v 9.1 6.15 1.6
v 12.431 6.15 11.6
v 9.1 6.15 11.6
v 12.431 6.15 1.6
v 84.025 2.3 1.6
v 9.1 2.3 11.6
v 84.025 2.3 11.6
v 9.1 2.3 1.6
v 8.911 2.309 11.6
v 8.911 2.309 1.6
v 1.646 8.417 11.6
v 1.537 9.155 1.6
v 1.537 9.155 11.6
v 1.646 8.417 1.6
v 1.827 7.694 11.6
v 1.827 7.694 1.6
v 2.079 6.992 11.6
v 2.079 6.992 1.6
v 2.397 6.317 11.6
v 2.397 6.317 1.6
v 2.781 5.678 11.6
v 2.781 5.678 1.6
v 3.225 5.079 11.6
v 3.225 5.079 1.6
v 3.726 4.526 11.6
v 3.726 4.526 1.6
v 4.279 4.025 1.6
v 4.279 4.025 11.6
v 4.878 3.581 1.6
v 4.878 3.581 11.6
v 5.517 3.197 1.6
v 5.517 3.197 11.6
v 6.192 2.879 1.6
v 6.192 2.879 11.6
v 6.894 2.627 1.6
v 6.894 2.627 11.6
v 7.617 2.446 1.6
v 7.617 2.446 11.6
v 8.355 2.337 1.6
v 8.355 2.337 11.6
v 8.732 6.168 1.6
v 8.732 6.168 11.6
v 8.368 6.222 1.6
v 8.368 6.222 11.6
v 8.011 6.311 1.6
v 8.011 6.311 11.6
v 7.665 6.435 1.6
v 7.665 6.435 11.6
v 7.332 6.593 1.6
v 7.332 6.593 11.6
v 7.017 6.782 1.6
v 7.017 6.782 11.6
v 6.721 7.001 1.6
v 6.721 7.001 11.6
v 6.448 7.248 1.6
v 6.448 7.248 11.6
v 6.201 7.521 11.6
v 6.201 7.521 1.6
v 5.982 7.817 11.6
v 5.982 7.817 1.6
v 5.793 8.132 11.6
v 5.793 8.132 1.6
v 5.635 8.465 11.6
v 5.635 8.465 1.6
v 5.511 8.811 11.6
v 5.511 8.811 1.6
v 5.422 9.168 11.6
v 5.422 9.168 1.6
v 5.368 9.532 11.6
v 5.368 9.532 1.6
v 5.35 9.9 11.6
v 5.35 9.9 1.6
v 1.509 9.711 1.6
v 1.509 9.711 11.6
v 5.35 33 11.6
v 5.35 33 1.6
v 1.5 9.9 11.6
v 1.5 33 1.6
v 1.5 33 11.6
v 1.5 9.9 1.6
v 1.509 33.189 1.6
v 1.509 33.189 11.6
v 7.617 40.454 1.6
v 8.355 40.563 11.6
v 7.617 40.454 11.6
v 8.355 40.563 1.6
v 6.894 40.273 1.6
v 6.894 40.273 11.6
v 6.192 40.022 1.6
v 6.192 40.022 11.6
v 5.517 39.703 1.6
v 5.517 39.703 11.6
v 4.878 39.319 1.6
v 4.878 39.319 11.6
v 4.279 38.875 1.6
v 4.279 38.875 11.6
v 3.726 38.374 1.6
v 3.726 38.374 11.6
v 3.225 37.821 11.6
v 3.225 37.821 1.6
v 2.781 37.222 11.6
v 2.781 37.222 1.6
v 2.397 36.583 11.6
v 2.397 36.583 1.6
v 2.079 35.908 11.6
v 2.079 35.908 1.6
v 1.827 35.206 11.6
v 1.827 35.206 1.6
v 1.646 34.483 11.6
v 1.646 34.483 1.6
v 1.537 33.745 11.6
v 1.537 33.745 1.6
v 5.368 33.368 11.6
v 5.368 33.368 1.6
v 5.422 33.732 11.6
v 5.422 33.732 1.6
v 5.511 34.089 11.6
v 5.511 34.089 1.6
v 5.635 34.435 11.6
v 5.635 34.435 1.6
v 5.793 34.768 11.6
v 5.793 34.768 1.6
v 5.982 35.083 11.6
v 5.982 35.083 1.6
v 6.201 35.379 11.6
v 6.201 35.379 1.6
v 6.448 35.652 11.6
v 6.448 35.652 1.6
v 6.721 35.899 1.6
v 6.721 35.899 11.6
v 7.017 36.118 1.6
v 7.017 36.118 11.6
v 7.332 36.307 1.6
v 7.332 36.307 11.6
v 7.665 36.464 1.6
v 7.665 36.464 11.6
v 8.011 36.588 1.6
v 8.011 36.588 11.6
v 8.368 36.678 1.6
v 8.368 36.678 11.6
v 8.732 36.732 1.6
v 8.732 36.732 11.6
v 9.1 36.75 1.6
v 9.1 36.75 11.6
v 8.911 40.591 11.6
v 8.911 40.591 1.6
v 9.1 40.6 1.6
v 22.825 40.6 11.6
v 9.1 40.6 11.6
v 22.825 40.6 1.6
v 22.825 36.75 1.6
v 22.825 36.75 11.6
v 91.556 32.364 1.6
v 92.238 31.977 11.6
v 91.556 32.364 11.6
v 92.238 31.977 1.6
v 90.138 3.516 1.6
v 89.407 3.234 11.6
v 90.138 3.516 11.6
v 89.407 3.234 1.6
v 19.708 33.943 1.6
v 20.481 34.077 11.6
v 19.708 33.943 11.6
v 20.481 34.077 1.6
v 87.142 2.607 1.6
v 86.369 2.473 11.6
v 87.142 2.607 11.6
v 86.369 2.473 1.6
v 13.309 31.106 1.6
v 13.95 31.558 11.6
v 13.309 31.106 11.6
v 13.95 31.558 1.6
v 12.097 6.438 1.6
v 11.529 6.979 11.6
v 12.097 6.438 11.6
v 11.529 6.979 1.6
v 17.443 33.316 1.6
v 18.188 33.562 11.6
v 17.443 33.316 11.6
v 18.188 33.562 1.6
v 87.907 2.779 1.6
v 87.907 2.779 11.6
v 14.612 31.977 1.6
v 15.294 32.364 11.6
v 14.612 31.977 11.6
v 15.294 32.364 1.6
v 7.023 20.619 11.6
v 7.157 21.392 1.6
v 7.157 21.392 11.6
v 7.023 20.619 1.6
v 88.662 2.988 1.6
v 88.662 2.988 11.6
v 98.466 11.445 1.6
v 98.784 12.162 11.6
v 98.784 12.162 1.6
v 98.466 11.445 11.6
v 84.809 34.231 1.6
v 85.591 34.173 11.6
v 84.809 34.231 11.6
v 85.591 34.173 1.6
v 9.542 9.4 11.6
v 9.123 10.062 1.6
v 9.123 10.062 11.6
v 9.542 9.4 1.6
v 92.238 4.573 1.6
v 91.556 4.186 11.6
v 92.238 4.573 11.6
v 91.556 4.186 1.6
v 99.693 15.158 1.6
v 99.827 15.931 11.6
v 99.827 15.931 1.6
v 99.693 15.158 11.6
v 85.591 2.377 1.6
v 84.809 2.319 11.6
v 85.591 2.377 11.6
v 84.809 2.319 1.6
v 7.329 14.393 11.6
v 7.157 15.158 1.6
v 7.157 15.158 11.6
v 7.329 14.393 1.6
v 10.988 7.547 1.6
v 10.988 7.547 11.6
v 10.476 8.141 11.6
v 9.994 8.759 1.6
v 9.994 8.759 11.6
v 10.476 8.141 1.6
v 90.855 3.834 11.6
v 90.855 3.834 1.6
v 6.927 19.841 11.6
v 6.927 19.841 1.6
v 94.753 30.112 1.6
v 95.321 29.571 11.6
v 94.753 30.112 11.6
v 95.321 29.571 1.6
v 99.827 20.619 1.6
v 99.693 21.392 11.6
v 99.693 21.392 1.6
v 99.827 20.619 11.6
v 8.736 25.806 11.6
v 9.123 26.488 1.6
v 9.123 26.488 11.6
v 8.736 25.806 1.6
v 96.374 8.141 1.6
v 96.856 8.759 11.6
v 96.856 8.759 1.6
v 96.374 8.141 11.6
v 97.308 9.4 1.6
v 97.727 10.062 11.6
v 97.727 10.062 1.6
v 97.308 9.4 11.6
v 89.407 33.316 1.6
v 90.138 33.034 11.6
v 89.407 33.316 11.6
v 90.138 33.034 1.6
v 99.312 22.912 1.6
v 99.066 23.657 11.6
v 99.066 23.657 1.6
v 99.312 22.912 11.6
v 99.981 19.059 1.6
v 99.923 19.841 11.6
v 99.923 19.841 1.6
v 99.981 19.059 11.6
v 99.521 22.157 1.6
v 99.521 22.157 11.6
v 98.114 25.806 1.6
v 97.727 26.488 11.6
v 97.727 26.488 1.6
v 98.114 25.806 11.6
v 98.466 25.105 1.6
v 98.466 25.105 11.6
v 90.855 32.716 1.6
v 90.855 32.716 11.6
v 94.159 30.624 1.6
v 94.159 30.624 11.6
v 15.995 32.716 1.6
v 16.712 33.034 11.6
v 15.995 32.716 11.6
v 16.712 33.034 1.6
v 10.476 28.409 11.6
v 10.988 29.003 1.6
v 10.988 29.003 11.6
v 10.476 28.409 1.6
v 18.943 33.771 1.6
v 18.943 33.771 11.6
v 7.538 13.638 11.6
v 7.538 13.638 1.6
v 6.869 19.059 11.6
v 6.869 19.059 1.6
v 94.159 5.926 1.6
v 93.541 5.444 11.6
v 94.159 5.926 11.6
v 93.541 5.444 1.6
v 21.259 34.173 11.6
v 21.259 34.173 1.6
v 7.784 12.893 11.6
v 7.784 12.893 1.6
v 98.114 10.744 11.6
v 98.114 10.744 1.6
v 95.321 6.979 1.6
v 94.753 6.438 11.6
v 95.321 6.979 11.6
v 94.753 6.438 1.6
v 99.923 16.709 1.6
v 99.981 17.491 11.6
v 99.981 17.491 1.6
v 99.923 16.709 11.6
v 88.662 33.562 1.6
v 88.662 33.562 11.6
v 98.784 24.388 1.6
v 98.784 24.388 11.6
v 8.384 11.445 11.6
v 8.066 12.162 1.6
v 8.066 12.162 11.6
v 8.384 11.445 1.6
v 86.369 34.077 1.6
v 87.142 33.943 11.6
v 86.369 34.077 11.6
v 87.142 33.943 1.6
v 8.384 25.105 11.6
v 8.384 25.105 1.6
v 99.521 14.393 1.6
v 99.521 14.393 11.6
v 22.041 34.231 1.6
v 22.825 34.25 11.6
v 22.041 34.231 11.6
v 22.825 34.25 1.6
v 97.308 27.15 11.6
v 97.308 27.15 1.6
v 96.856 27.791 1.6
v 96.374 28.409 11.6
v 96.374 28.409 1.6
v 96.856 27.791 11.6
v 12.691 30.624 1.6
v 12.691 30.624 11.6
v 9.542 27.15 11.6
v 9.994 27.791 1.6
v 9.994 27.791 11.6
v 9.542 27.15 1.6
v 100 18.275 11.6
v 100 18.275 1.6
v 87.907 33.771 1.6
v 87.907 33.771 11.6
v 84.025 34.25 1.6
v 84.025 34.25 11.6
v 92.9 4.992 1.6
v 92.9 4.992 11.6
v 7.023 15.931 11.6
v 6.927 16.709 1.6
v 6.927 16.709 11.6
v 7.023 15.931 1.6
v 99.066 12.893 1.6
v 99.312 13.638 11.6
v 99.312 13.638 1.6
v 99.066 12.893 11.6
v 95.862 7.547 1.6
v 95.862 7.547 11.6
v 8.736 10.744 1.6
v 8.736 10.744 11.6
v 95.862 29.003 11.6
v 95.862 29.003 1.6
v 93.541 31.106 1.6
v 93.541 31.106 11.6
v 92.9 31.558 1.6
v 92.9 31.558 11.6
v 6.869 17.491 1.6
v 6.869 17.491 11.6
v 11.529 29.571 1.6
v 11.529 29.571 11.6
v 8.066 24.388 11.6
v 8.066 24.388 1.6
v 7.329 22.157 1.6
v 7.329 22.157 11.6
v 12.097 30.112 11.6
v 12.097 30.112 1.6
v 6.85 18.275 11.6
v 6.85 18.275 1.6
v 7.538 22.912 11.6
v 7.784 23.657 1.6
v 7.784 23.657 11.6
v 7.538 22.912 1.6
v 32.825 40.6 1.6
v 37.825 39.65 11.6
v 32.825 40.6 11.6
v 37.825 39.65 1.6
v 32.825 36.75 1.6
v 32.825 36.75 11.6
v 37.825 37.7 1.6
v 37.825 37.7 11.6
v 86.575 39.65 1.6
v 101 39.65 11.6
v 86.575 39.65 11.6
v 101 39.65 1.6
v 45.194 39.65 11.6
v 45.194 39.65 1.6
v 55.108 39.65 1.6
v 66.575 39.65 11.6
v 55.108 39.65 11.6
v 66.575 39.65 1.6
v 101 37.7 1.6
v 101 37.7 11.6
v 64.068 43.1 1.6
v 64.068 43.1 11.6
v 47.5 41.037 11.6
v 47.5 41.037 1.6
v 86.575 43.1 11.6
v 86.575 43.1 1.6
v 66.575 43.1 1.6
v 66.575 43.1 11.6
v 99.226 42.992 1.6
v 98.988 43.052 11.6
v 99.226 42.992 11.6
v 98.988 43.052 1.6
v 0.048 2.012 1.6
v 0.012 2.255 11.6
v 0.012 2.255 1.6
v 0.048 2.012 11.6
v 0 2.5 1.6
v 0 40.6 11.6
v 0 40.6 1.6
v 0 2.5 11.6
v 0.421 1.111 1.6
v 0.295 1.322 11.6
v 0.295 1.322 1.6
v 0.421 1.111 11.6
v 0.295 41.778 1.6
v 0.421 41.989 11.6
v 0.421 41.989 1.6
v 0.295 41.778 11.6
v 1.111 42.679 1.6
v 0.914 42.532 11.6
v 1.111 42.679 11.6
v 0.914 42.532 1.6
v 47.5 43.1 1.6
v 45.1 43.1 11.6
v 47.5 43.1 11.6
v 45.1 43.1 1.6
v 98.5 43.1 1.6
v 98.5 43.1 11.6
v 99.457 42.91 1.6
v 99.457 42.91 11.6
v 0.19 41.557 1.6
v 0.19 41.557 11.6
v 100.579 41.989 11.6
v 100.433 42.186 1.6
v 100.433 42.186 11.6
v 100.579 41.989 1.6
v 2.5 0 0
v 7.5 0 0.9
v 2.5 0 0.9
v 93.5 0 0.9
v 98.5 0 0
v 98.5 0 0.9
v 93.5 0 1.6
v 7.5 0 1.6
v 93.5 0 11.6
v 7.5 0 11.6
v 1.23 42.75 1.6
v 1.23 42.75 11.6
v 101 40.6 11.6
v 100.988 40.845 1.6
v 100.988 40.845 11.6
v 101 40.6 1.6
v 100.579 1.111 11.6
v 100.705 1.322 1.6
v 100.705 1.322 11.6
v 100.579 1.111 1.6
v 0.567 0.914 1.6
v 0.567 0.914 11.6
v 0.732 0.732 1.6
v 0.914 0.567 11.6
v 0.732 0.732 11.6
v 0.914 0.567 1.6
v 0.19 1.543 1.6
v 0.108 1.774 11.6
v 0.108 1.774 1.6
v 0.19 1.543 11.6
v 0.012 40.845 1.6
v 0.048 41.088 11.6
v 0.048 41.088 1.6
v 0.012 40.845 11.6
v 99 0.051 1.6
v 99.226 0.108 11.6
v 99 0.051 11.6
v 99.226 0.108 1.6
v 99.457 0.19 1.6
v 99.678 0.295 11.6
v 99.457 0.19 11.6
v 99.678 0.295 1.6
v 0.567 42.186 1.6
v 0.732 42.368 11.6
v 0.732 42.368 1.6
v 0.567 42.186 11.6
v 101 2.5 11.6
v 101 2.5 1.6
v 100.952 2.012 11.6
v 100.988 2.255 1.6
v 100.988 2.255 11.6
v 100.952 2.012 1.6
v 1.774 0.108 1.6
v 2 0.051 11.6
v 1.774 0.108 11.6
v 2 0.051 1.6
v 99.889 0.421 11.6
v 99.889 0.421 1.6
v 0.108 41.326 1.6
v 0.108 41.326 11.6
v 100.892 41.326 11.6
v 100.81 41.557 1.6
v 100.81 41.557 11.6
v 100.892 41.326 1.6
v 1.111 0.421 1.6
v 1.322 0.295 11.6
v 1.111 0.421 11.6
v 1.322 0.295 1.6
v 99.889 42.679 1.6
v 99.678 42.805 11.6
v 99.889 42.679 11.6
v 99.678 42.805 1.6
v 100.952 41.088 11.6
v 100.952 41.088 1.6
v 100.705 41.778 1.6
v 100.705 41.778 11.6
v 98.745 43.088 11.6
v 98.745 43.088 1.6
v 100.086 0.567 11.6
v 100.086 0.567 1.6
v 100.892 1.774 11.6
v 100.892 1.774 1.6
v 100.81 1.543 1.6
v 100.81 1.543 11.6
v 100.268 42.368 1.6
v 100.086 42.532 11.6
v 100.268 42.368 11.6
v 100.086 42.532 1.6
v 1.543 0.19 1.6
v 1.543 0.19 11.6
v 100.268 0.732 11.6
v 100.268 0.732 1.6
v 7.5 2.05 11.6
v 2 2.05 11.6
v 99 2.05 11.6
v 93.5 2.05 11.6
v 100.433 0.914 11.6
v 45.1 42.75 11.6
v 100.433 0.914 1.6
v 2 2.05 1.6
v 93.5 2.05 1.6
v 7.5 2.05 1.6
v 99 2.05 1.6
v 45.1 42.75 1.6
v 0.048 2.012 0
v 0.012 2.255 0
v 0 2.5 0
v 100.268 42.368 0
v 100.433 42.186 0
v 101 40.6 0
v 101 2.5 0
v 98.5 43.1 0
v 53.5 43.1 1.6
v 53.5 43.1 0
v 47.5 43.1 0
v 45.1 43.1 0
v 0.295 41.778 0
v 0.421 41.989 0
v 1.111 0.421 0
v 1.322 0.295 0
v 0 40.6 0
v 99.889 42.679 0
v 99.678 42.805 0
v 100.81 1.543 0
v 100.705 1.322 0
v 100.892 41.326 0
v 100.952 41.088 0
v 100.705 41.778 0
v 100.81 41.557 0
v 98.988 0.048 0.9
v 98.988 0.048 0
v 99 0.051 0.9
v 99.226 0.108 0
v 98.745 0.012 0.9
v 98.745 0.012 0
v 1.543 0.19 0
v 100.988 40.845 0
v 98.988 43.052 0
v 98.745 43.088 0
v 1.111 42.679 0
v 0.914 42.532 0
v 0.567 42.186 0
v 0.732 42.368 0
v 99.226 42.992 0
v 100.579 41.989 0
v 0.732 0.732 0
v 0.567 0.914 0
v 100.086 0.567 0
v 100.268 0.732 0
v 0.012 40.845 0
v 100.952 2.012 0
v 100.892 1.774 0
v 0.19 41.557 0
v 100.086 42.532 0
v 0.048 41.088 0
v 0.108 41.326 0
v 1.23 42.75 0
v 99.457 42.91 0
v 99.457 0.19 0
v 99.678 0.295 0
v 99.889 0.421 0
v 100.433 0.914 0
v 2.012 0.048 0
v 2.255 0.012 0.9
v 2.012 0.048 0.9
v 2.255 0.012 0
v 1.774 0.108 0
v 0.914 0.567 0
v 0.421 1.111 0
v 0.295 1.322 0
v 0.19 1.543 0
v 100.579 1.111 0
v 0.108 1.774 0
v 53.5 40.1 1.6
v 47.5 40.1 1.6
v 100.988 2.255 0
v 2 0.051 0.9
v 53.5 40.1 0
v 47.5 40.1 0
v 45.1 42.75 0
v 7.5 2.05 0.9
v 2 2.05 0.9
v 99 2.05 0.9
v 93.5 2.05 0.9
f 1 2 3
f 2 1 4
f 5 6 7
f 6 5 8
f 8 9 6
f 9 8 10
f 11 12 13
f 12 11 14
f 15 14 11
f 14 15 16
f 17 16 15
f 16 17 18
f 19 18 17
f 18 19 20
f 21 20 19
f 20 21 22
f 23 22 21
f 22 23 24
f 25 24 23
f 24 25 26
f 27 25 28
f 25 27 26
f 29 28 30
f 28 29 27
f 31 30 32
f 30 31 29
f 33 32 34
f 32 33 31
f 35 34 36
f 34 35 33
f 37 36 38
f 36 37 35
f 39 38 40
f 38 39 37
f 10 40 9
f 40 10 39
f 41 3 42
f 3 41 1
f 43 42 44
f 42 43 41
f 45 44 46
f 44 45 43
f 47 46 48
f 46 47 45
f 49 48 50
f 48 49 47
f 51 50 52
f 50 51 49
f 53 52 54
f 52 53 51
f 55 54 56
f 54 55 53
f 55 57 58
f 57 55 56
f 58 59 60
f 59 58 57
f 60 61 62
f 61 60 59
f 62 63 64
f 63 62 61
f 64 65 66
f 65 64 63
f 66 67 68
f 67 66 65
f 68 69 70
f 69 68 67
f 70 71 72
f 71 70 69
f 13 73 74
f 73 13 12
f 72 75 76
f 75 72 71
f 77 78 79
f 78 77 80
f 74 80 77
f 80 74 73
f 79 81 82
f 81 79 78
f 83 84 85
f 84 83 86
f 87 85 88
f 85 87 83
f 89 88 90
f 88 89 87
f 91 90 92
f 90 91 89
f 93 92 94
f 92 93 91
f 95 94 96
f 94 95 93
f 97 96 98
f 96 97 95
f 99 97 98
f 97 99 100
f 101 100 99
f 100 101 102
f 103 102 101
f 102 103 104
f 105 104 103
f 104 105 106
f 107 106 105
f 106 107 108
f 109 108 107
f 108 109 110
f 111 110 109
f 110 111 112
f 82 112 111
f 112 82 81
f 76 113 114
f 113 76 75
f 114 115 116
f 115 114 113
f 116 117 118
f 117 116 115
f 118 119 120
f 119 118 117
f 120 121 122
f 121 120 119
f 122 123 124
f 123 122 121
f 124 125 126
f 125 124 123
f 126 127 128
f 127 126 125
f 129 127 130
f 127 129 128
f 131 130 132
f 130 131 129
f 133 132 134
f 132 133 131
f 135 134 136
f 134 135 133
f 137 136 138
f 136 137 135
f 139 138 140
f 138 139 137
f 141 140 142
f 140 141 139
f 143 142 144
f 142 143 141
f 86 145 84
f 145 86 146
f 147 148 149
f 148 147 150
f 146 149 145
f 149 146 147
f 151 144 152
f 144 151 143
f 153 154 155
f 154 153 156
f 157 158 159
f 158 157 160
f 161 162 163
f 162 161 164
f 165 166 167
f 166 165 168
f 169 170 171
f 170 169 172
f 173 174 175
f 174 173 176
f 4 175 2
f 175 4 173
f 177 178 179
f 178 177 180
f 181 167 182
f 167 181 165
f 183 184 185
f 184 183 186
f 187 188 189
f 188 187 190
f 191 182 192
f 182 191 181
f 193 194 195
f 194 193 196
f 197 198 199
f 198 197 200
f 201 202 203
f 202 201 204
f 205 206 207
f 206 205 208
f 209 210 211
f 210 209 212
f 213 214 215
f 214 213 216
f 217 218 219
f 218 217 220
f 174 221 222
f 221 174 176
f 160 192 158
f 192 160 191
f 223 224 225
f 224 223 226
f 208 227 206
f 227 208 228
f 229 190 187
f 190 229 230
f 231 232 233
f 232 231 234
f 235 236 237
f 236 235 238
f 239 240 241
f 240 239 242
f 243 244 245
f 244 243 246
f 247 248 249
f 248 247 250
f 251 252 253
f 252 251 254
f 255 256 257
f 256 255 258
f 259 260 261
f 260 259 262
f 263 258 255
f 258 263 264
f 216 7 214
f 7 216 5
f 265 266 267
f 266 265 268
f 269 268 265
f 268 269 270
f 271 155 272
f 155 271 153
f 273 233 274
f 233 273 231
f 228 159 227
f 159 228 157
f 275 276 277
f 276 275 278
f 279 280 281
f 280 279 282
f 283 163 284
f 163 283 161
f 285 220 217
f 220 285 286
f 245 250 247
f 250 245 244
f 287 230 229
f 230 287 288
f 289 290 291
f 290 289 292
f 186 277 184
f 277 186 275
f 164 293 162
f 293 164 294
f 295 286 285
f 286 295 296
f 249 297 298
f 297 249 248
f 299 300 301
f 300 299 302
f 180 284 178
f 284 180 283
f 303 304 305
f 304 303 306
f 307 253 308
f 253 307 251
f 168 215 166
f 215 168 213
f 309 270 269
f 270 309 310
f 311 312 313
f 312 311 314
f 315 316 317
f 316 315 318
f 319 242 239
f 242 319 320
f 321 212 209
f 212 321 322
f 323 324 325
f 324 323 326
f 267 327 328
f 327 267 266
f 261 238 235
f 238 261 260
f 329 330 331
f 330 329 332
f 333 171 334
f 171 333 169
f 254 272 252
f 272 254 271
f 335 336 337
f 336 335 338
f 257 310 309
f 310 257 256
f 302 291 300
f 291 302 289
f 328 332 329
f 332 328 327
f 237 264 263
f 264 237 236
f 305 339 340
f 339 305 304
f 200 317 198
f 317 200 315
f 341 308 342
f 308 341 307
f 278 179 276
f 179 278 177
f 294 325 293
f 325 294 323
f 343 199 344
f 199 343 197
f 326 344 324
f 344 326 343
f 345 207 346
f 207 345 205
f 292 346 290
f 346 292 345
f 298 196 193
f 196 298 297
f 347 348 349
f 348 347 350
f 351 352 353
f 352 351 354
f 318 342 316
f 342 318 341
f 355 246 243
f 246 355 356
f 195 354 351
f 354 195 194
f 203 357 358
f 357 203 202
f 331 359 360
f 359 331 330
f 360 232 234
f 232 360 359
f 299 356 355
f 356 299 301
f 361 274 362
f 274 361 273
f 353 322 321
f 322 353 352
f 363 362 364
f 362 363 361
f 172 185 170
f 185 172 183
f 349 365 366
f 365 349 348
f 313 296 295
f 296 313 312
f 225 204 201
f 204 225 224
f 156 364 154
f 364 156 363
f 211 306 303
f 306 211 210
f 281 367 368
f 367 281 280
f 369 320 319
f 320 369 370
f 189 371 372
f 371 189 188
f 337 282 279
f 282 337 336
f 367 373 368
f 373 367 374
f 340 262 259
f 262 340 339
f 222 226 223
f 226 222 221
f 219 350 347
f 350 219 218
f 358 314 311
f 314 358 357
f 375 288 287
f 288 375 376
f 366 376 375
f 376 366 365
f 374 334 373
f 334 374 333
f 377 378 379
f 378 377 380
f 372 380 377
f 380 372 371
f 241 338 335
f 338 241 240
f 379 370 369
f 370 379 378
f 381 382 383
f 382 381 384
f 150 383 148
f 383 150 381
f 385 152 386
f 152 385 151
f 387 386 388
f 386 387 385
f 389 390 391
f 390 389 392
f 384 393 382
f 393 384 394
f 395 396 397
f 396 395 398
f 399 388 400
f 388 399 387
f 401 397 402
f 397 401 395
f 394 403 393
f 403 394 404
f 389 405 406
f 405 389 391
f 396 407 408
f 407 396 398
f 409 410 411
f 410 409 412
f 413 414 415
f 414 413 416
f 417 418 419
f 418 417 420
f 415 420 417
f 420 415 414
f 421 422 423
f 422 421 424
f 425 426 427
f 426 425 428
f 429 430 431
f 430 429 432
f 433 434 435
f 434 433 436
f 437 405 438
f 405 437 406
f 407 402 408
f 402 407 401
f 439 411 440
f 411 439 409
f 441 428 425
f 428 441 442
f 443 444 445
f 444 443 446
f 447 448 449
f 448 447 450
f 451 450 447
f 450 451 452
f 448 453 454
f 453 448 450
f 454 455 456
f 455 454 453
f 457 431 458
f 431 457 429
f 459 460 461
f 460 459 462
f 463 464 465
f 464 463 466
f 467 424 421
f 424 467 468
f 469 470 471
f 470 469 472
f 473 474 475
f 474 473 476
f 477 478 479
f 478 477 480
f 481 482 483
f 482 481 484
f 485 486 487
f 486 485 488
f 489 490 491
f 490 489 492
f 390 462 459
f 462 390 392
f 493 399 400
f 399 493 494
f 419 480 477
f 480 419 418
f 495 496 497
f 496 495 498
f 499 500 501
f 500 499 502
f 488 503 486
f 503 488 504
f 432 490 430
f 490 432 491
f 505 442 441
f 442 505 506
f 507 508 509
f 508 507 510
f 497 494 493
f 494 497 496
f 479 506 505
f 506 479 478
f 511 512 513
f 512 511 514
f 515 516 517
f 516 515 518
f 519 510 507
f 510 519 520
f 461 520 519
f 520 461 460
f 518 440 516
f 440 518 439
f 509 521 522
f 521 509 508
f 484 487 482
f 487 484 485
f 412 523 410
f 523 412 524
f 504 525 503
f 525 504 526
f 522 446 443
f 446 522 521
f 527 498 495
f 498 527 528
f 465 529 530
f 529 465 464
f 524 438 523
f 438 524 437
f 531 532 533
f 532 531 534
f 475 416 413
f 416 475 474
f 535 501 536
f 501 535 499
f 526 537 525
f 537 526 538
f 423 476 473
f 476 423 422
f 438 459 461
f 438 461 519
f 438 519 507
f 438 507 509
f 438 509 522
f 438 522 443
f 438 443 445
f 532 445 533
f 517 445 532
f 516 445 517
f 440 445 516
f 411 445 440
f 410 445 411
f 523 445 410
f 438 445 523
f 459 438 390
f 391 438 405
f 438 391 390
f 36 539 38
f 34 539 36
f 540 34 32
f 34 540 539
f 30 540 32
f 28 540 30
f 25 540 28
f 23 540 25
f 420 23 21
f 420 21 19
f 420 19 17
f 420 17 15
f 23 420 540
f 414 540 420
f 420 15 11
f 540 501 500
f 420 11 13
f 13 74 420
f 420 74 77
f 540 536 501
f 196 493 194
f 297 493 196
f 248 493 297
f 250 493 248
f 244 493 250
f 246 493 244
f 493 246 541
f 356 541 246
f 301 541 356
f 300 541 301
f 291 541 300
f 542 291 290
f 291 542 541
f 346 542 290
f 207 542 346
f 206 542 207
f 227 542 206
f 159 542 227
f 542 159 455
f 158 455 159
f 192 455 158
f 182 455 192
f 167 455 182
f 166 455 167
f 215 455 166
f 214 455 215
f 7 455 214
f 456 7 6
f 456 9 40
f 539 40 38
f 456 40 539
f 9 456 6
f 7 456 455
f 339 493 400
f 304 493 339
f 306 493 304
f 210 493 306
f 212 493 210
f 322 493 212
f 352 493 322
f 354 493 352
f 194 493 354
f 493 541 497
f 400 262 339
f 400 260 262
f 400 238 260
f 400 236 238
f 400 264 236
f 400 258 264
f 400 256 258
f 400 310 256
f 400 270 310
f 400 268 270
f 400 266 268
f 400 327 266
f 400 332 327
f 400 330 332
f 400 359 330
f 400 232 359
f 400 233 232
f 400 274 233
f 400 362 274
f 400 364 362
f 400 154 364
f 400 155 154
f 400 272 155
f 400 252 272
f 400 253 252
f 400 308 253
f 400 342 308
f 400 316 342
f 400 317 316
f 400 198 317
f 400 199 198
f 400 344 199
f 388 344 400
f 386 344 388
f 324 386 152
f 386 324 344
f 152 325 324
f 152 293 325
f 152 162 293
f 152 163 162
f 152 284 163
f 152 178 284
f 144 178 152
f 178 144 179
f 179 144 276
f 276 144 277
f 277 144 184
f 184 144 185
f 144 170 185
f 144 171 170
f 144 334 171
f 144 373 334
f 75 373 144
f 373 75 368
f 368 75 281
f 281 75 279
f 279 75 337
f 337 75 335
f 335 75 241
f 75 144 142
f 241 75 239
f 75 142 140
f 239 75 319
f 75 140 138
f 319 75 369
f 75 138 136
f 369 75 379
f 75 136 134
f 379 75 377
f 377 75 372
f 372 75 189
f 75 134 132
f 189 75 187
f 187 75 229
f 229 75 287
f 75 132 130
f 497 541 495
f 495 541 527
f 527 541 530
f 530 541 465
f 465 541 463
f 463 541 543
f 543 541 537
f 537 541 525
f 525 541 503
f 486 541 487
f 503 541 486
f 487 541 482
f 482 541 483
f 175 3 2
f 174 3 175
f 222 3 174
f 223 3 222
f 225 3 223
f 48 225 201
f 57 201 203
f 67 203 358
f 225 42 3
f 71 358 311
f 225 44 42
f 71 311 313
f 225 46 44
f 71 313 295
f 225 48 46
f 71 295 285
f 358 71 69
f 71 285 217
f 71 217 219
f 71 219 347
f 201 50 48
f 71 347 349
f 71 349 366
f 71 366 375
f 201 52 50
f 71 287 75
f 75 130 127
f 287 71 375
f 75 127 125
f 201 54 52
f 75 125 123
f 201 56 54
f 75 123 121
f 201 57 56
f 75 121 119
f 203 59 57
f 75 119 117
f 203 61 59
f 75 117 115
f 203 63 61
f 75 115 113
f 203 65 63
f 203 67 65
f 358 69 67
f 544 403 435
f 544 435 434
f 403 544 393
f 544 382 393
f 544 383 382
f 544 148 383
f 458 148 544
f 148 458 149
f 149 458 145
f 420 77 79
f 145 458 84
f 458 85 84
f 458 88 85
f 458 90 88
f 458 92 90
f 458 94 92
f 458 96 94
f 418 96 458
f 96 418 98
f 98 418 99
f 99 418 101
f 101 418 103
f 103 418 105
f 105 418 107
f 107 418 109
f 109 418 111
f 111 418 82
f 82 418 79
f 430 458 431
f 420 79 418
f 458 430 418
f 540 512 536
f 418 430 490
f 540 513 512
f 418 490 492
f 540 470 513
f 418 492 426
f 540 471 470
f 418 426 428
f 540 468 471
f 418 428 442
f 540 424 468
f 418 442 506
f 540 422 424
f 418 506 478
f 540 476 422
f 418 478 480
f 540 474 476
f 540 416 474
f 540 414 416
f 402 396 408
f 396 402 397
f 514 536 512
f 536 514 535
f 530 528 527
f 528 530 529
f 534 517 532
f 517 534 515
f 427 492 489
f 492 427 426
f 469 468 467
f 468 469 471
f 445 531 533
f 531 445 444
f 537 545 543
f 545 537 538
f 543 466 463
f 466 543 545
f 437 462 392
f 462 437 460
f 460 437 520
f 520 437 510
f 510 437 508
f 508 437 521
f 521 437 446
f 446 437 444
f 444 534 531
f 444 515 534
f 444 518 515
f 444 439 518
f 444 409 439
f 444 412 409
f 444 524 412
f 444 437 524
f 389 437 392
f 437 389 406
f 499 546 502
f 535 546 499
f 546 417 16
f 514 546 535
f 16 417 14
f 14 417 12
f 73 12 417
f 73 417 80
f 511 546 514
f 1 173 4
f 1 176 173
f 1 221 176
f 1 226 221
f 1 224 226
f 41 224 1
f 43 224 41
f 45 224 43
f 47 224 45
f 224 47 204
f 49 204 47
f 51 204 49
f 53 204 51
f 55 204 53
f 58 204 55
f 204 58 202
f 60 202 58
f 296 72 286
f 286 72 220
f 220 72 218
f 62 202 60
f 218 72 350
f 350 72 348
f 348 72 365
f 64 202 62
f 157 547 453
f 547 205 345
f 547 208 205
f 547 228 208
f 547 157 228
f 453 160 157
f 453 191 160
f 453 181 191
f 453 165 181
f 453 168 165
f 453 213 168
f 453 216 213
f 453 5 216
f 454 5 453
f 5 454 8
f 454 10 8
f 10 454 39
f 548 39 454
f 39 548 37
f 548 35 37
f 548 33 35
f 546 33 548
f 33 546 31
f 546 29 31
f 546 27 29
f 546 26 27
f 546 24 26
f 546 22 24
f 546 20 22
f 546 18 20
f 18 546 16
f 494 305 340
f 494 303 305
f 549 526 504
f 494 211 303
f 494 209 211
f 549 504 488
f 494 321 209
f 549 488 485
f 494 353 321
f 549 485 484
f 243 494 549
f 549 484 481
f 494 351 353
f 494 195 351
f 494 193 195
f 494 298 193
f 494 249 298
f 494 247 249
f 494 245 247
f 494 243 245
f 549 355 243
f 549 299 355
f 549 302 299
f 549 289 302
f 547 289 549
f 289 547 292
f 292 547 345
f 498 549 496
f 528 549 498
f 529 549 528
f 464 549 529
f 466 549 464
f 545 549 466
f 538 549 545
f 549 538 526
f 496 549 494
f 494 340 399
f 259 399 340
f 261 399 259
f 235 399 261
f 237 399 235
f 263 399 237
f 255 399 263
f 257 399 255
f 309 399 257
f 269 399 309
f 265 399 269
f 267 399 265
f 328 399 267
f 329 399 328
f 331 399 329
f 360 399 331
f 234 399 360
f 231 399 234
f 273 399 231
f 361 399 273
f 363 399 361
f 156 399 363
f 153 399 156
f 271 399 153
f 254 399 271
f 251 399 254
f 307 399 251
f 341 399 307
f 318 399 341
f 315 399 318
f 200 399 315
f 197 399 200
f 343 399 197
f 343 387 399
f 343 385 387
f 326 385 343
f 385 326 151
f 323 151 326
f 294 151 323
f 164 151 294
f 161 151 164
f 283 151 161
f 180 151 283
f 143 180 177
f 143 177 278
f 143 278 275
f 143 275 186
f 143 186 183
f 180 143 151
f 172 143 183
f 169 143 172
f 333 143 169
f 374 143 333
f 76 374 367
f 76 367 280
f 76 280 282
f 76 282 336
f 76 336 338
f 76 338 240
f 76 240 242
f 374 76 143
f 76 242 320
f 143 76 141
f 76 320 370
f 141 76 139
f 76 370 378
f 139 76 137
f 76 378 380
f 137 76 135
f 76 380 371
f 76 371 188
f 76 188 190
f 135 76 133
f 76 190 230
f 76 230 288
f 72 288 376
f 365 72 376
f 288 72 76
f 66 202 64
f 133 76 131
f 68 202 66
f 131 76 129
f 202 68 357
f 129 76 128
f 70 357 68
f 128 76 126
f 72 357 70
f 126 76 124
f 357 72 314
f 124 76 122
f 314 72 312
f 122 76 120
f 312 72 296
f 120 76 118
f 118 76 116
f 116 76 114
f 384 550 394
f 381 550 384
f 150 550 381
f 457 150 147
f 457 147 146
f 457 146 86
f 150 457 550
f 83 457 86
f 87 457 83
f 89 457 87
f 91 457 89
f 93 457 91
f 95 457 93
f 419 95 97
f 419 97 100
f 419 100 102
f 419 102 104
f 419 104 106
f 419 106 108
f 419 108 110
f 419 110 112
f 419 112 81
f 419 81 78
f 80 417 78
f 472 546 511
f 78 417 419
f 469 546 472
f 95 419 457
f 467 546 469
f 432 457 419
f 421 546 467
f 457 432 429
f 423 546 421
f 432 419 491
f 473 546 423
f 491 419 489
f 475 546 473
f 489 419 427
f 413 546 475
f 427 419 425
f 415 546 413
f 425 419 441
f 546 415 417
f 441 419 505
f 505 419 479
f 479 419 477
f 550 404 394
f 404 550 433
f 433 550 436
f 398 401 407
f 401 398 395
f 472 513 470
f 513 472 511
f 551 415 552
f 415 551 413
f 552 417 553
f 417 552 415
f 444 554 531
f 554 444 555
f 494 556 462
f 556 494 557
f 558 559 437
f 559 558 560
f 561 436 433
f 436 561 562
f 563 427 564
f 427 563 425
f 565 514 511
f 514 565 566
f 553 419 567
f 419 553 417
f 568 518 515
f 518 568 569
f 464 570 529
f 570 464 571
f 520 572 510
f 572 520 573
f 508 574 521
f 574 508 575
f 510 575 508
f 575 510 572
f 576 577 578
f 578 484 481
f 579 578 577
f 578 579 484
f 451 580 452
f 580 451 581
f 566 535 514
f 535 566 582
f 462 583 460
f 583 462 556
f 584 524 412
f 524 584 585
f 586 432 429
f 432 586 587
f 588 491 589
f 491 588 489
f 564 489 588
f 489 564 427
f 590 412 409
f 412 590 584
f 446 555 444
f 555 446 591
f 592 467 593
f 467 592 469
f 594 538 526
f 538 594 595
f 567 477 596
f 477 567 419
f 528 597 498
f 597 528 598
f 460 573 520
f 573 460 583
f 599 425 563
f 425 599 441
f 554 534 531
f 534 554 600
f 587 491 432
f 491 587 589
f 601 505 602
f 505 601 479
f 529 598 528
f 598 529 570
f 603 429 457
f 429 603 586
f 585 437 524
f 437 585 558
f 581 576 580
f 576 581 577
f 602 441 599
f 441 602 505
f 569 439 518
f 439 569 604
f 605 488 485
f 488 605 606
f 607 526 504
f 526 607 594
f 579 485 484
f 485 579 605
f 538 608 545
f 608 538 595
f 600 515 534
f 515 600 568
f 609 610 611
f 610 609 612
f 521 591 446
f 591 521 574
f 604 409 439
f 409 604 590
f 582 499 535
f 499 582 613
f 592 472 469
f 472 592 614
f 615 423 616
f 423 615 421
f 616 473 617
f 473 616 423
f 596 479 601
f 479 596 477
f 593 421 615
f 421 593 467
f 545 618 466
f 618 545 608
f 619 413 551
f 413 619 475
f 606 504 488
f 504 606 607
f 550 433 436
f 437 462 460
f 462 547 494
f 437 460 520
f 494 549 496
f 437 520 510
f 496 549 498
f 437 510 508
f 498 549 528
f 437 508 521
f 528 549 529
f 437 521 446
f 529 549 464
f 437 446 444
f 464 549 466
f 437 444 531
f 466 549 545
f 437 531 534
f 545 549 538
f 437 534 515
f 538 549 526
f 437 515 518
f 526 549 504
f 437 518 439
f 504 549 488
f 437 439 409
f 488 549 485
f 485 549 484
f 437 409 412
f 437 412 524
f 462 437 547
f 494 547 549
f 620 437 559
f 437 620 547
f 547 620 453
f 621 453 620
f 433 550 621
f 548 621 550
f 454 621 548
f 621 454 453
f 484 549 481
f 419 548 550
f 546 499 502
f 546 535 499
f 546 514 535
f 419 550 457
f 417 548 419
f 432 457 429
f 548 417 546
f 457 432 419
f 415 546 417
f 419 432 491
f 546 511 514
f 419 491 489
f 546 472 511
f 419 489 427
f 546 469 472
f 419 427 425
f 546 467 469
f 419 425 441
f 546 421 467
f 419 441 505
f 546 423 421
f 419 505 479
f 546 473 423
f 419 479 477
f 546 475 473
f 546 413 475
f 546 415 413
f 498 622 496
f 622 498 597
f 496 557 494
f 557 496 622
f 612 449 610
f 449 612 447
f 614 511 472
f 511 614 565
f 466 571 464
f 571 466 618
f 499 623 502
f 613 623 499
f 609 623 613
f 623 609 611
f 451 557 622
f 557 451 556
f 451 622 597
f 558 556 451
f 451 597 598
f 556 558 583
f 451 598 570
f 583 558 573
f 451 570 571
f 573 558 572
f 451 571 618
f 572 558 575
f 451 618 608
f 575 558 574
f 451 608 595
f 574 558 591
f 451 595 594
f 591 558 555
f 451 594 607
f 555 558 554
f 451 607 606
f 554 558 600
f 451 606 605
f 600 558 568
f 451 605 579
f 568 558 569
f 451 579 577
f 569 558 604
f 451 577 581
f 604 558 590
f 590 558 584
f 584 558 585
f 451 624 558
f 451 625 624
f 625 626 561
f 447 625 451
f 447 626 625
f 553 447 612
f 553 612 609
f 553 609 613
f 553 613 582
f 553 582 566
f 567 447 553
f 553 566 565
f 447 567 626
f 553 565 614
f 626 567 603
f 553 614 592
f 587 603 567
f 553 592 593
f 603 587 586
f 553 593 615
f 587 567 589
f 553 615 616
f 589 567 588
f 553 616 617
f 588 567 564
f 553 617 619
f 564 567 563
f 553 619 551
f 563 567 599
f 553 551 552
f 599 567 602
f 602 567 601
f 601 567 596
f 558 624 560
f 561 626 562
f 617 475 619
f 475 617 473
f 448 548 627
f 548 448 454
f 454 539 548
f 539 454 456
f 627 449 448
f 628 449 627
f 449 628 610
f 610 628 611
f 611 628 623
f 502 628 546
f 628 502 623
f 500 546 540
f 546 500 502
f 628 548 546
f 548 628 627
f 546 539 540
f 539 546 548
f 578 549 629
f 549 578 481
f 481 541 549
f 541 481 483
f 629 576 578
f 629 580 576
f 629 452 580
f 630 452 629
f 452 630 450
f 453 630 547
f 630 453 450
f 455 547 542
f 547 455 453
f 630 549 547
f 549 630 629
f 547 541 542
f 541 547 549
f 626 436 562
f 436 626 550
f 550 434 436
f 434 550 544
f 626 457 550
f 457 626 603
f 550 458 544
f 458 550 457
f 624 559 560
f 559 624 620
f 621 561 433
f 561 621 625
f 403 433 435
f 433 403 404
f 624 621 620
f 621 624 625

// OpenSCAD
module Path(){
  translate([0, 0, -0.002])union(){
      translate([0, 0, -0.002])hull(){
          translate([0, 0, -0.002])cylinder(d=3.85,h=11.008,$fn=64);
          translate([-13.725, 0, -0.002])cylinder(d=3.85,h=11.008,$fn=64);
        }

      translate([-13.725, 0, -0.002])linear_extrude(height=11.004)translate([0, 5.675, 0])rotate([0, 0, 180])intersection(){
                difference(){
                  circle(d=15.2,$fn=64);
                  circle(d=7.5,$fn=64);
                }

                polygon(points=[[0, 0], [0, 0.152e2], [0.152e2, 0.930731567351988432e-15]],convexity=10);
              }

      translate([0, 0, -0.002])hull(){
          translate([-19.4, 5.674999999999998, -0.002])cylinder(d=3.85,h=11.008,$fn=64);
          translate([-19.4, 28.775, -0.002])cylinder(d=3.85,h=11.008,$fn=64);
        }

      translate([-19.4, 28.775, -0.002])linear_extrude(height=11.004)translate([5.675, 0, 0])rotate([0, 0, 90])intersection(){
                difference(){
                  circle(d=15.2,$fn=64);
                  circle(d=7.5,$fn=64);
                }

                polygon(points=[[0, 0], [0, 0.152e2], [0.152e2, 0.930731567351988432e-15]],convexity=10);
              }

      translate([0, 0, -0.002])hull(){
          translate([-13.725000000000001, 34.449999999999996, -0.002])cylinder(d=3.85,h=11.008,$fn=64);
          translate([-6.949870585161229e-16, 34.449999999999996, -0.002])cylinder(d=3.85,h=11.008,$fn=64);
        }

    }
}
module GridSegment_extra_w_1_0_extra_len_2_h_1_5_w_2_08_repeat_x_2_repeat_y_1_lid_extra_w_1_0_lid_extra_h_0_4_no_bottom_true(){
  translate([25.85, 25.85, 0])union(){
      translate([0, 0, 45])%linear_extrude(height=1)union(){
            translate([-25.85, -25.85, 0])square([51.7, 51.7]);
            translate([-25.85, -25.85, 0])square([51.7, 51.7]);
            translate([27.85, -25.85, 0])square([51.7, 51.7]);
          }

      translate([0, 0, 41.5])color("blue")linear_extrude(height=3.5)union(){
              translate([-21.6, 22.95, 0])square([43.2, 2.2]);
              translate([-21.6, -25.15, 0])square([43.2, 2.2]);
              translate([22.95, -21.6, 0])square([2.2, 43.2]);
              translate([-25.15, -21.6, 0])square([2.2, 43.2]);
              union(){
                translate([-21.6, 22.95, 0])square([43.2, 2.2]);
                translate([-21.6, -25.15, 0])square([43.2, 2.2]);
                translate([22.95, -21.6, 0])square([2.2, 43.2]);
                translate([-25.15, -21.6, 0])square([2.2, 43.2]);
              }

              translate([53.7, 0, 0])union(){
                  translate([-21.6, 22.95, 0])square([43.2, 2.2]);
                  translate([-21.6, -25.15, 0])square([43.2, 2.2]);
                  translate([22.95, -21.6, 0])square([2.2, 43.2]);
                  translate([-25.15, -21.6, 0])square([2.2, 43.2]);
                }

            }

    }
}
module SmdDispenser_strip_w_1_55(){
  difference(){
    color("pink")union(){
        translate([0, 0, 1.6])difference(){
            union()linear_extrude(height=10)translate([2.5, 2.5, 0])hull(){
                    circle(d=5,$fn=64);
                    translate([96, 0, 0])circle(d=5,$fn=64);
                    translate([0, 38.1, 0])circle(d=5,$fn=64);
                    translate([96, 38.1, 0])circle(d=5,$fn=64);
                  }

            translate([22.825, 38.675, -0.002])union(){
                translate([6.949870585161229e-16, -34.449999999999996, -0.002])union(){
                    translate([0, 0, -0.002])Path();
                    translate([0, 14.05, 0])hull(){
                        translate([0, 0, -0.1])cylinder(d=31.95,h=11.208,$fn=128);
                        translate([61.2, 0, -0.1])cylinder(d=31.95,h=11.408,$fn=128);
                      }

                  }

                translate([0, 0, -0.004])hull(){
                    translate([0, -1.925, -0.004])cube([10, 3.85, 10.016]);
                    translate([5, -0.975, -0.004])cube([10, 1.95, 10.016]);
                  }

                translate([0, -0.975, -0.004])color("blue")cube([101, 1.95, 10.016]);
                translate([29.75, 0, -0.004])linear_extrude(height=10.008)hull(){
                      translate([7, 9.625, 0])square([18, 0.001]);
                      translate([-9, 0, 0])square([9, 0.001]);
                    }

                translate([43.75, 0, -0.1])cube([20, 11.55, 11.208]);
              }

          }

        union()linear_extrude(height=1.6)translate([2.5, 2.5, 0])hull(){
                circle(d=5,$fn=64);
                translate([96, 0, 0])circle(d=5,$fn=64);
                translate([0, 38.1, 0])circle(d=5,$fn=64);
                translate([96, 38.1, 0])circle(d=5,$fn=64);
              }

      }

    translate([-0.1, 42.75, -0.1])color("silver")cube([45.2, 0.5, 12.8]);
    translate([0, 0, 1])color("MediumVioletRed")union(){
          translate([2, 0, -0.1])cube([5.5, 2.05, 12.8]);
          translate([93.5, 0, -0.1])cube([5.5, 2.05, 13]);
        }

    translate([0, 0, -5])mirror([])rotate([90, 0, 0])translate([-2.40000000000001, 0, -1.5])GridSegment_extra_w_1_0_extra_len_2_h_1_5_w_2_08_repeat_x_2_repeat_y_1_lid_extra_w_1_0_lid_extra_h_0_4_no_bottom_true();
    translate([47.5, 40.1, -0.002])color("purple")cube([6, 6, 11.608]);
  }
}
$fn=64;
SmdDispenser_strip_w_1_55();
